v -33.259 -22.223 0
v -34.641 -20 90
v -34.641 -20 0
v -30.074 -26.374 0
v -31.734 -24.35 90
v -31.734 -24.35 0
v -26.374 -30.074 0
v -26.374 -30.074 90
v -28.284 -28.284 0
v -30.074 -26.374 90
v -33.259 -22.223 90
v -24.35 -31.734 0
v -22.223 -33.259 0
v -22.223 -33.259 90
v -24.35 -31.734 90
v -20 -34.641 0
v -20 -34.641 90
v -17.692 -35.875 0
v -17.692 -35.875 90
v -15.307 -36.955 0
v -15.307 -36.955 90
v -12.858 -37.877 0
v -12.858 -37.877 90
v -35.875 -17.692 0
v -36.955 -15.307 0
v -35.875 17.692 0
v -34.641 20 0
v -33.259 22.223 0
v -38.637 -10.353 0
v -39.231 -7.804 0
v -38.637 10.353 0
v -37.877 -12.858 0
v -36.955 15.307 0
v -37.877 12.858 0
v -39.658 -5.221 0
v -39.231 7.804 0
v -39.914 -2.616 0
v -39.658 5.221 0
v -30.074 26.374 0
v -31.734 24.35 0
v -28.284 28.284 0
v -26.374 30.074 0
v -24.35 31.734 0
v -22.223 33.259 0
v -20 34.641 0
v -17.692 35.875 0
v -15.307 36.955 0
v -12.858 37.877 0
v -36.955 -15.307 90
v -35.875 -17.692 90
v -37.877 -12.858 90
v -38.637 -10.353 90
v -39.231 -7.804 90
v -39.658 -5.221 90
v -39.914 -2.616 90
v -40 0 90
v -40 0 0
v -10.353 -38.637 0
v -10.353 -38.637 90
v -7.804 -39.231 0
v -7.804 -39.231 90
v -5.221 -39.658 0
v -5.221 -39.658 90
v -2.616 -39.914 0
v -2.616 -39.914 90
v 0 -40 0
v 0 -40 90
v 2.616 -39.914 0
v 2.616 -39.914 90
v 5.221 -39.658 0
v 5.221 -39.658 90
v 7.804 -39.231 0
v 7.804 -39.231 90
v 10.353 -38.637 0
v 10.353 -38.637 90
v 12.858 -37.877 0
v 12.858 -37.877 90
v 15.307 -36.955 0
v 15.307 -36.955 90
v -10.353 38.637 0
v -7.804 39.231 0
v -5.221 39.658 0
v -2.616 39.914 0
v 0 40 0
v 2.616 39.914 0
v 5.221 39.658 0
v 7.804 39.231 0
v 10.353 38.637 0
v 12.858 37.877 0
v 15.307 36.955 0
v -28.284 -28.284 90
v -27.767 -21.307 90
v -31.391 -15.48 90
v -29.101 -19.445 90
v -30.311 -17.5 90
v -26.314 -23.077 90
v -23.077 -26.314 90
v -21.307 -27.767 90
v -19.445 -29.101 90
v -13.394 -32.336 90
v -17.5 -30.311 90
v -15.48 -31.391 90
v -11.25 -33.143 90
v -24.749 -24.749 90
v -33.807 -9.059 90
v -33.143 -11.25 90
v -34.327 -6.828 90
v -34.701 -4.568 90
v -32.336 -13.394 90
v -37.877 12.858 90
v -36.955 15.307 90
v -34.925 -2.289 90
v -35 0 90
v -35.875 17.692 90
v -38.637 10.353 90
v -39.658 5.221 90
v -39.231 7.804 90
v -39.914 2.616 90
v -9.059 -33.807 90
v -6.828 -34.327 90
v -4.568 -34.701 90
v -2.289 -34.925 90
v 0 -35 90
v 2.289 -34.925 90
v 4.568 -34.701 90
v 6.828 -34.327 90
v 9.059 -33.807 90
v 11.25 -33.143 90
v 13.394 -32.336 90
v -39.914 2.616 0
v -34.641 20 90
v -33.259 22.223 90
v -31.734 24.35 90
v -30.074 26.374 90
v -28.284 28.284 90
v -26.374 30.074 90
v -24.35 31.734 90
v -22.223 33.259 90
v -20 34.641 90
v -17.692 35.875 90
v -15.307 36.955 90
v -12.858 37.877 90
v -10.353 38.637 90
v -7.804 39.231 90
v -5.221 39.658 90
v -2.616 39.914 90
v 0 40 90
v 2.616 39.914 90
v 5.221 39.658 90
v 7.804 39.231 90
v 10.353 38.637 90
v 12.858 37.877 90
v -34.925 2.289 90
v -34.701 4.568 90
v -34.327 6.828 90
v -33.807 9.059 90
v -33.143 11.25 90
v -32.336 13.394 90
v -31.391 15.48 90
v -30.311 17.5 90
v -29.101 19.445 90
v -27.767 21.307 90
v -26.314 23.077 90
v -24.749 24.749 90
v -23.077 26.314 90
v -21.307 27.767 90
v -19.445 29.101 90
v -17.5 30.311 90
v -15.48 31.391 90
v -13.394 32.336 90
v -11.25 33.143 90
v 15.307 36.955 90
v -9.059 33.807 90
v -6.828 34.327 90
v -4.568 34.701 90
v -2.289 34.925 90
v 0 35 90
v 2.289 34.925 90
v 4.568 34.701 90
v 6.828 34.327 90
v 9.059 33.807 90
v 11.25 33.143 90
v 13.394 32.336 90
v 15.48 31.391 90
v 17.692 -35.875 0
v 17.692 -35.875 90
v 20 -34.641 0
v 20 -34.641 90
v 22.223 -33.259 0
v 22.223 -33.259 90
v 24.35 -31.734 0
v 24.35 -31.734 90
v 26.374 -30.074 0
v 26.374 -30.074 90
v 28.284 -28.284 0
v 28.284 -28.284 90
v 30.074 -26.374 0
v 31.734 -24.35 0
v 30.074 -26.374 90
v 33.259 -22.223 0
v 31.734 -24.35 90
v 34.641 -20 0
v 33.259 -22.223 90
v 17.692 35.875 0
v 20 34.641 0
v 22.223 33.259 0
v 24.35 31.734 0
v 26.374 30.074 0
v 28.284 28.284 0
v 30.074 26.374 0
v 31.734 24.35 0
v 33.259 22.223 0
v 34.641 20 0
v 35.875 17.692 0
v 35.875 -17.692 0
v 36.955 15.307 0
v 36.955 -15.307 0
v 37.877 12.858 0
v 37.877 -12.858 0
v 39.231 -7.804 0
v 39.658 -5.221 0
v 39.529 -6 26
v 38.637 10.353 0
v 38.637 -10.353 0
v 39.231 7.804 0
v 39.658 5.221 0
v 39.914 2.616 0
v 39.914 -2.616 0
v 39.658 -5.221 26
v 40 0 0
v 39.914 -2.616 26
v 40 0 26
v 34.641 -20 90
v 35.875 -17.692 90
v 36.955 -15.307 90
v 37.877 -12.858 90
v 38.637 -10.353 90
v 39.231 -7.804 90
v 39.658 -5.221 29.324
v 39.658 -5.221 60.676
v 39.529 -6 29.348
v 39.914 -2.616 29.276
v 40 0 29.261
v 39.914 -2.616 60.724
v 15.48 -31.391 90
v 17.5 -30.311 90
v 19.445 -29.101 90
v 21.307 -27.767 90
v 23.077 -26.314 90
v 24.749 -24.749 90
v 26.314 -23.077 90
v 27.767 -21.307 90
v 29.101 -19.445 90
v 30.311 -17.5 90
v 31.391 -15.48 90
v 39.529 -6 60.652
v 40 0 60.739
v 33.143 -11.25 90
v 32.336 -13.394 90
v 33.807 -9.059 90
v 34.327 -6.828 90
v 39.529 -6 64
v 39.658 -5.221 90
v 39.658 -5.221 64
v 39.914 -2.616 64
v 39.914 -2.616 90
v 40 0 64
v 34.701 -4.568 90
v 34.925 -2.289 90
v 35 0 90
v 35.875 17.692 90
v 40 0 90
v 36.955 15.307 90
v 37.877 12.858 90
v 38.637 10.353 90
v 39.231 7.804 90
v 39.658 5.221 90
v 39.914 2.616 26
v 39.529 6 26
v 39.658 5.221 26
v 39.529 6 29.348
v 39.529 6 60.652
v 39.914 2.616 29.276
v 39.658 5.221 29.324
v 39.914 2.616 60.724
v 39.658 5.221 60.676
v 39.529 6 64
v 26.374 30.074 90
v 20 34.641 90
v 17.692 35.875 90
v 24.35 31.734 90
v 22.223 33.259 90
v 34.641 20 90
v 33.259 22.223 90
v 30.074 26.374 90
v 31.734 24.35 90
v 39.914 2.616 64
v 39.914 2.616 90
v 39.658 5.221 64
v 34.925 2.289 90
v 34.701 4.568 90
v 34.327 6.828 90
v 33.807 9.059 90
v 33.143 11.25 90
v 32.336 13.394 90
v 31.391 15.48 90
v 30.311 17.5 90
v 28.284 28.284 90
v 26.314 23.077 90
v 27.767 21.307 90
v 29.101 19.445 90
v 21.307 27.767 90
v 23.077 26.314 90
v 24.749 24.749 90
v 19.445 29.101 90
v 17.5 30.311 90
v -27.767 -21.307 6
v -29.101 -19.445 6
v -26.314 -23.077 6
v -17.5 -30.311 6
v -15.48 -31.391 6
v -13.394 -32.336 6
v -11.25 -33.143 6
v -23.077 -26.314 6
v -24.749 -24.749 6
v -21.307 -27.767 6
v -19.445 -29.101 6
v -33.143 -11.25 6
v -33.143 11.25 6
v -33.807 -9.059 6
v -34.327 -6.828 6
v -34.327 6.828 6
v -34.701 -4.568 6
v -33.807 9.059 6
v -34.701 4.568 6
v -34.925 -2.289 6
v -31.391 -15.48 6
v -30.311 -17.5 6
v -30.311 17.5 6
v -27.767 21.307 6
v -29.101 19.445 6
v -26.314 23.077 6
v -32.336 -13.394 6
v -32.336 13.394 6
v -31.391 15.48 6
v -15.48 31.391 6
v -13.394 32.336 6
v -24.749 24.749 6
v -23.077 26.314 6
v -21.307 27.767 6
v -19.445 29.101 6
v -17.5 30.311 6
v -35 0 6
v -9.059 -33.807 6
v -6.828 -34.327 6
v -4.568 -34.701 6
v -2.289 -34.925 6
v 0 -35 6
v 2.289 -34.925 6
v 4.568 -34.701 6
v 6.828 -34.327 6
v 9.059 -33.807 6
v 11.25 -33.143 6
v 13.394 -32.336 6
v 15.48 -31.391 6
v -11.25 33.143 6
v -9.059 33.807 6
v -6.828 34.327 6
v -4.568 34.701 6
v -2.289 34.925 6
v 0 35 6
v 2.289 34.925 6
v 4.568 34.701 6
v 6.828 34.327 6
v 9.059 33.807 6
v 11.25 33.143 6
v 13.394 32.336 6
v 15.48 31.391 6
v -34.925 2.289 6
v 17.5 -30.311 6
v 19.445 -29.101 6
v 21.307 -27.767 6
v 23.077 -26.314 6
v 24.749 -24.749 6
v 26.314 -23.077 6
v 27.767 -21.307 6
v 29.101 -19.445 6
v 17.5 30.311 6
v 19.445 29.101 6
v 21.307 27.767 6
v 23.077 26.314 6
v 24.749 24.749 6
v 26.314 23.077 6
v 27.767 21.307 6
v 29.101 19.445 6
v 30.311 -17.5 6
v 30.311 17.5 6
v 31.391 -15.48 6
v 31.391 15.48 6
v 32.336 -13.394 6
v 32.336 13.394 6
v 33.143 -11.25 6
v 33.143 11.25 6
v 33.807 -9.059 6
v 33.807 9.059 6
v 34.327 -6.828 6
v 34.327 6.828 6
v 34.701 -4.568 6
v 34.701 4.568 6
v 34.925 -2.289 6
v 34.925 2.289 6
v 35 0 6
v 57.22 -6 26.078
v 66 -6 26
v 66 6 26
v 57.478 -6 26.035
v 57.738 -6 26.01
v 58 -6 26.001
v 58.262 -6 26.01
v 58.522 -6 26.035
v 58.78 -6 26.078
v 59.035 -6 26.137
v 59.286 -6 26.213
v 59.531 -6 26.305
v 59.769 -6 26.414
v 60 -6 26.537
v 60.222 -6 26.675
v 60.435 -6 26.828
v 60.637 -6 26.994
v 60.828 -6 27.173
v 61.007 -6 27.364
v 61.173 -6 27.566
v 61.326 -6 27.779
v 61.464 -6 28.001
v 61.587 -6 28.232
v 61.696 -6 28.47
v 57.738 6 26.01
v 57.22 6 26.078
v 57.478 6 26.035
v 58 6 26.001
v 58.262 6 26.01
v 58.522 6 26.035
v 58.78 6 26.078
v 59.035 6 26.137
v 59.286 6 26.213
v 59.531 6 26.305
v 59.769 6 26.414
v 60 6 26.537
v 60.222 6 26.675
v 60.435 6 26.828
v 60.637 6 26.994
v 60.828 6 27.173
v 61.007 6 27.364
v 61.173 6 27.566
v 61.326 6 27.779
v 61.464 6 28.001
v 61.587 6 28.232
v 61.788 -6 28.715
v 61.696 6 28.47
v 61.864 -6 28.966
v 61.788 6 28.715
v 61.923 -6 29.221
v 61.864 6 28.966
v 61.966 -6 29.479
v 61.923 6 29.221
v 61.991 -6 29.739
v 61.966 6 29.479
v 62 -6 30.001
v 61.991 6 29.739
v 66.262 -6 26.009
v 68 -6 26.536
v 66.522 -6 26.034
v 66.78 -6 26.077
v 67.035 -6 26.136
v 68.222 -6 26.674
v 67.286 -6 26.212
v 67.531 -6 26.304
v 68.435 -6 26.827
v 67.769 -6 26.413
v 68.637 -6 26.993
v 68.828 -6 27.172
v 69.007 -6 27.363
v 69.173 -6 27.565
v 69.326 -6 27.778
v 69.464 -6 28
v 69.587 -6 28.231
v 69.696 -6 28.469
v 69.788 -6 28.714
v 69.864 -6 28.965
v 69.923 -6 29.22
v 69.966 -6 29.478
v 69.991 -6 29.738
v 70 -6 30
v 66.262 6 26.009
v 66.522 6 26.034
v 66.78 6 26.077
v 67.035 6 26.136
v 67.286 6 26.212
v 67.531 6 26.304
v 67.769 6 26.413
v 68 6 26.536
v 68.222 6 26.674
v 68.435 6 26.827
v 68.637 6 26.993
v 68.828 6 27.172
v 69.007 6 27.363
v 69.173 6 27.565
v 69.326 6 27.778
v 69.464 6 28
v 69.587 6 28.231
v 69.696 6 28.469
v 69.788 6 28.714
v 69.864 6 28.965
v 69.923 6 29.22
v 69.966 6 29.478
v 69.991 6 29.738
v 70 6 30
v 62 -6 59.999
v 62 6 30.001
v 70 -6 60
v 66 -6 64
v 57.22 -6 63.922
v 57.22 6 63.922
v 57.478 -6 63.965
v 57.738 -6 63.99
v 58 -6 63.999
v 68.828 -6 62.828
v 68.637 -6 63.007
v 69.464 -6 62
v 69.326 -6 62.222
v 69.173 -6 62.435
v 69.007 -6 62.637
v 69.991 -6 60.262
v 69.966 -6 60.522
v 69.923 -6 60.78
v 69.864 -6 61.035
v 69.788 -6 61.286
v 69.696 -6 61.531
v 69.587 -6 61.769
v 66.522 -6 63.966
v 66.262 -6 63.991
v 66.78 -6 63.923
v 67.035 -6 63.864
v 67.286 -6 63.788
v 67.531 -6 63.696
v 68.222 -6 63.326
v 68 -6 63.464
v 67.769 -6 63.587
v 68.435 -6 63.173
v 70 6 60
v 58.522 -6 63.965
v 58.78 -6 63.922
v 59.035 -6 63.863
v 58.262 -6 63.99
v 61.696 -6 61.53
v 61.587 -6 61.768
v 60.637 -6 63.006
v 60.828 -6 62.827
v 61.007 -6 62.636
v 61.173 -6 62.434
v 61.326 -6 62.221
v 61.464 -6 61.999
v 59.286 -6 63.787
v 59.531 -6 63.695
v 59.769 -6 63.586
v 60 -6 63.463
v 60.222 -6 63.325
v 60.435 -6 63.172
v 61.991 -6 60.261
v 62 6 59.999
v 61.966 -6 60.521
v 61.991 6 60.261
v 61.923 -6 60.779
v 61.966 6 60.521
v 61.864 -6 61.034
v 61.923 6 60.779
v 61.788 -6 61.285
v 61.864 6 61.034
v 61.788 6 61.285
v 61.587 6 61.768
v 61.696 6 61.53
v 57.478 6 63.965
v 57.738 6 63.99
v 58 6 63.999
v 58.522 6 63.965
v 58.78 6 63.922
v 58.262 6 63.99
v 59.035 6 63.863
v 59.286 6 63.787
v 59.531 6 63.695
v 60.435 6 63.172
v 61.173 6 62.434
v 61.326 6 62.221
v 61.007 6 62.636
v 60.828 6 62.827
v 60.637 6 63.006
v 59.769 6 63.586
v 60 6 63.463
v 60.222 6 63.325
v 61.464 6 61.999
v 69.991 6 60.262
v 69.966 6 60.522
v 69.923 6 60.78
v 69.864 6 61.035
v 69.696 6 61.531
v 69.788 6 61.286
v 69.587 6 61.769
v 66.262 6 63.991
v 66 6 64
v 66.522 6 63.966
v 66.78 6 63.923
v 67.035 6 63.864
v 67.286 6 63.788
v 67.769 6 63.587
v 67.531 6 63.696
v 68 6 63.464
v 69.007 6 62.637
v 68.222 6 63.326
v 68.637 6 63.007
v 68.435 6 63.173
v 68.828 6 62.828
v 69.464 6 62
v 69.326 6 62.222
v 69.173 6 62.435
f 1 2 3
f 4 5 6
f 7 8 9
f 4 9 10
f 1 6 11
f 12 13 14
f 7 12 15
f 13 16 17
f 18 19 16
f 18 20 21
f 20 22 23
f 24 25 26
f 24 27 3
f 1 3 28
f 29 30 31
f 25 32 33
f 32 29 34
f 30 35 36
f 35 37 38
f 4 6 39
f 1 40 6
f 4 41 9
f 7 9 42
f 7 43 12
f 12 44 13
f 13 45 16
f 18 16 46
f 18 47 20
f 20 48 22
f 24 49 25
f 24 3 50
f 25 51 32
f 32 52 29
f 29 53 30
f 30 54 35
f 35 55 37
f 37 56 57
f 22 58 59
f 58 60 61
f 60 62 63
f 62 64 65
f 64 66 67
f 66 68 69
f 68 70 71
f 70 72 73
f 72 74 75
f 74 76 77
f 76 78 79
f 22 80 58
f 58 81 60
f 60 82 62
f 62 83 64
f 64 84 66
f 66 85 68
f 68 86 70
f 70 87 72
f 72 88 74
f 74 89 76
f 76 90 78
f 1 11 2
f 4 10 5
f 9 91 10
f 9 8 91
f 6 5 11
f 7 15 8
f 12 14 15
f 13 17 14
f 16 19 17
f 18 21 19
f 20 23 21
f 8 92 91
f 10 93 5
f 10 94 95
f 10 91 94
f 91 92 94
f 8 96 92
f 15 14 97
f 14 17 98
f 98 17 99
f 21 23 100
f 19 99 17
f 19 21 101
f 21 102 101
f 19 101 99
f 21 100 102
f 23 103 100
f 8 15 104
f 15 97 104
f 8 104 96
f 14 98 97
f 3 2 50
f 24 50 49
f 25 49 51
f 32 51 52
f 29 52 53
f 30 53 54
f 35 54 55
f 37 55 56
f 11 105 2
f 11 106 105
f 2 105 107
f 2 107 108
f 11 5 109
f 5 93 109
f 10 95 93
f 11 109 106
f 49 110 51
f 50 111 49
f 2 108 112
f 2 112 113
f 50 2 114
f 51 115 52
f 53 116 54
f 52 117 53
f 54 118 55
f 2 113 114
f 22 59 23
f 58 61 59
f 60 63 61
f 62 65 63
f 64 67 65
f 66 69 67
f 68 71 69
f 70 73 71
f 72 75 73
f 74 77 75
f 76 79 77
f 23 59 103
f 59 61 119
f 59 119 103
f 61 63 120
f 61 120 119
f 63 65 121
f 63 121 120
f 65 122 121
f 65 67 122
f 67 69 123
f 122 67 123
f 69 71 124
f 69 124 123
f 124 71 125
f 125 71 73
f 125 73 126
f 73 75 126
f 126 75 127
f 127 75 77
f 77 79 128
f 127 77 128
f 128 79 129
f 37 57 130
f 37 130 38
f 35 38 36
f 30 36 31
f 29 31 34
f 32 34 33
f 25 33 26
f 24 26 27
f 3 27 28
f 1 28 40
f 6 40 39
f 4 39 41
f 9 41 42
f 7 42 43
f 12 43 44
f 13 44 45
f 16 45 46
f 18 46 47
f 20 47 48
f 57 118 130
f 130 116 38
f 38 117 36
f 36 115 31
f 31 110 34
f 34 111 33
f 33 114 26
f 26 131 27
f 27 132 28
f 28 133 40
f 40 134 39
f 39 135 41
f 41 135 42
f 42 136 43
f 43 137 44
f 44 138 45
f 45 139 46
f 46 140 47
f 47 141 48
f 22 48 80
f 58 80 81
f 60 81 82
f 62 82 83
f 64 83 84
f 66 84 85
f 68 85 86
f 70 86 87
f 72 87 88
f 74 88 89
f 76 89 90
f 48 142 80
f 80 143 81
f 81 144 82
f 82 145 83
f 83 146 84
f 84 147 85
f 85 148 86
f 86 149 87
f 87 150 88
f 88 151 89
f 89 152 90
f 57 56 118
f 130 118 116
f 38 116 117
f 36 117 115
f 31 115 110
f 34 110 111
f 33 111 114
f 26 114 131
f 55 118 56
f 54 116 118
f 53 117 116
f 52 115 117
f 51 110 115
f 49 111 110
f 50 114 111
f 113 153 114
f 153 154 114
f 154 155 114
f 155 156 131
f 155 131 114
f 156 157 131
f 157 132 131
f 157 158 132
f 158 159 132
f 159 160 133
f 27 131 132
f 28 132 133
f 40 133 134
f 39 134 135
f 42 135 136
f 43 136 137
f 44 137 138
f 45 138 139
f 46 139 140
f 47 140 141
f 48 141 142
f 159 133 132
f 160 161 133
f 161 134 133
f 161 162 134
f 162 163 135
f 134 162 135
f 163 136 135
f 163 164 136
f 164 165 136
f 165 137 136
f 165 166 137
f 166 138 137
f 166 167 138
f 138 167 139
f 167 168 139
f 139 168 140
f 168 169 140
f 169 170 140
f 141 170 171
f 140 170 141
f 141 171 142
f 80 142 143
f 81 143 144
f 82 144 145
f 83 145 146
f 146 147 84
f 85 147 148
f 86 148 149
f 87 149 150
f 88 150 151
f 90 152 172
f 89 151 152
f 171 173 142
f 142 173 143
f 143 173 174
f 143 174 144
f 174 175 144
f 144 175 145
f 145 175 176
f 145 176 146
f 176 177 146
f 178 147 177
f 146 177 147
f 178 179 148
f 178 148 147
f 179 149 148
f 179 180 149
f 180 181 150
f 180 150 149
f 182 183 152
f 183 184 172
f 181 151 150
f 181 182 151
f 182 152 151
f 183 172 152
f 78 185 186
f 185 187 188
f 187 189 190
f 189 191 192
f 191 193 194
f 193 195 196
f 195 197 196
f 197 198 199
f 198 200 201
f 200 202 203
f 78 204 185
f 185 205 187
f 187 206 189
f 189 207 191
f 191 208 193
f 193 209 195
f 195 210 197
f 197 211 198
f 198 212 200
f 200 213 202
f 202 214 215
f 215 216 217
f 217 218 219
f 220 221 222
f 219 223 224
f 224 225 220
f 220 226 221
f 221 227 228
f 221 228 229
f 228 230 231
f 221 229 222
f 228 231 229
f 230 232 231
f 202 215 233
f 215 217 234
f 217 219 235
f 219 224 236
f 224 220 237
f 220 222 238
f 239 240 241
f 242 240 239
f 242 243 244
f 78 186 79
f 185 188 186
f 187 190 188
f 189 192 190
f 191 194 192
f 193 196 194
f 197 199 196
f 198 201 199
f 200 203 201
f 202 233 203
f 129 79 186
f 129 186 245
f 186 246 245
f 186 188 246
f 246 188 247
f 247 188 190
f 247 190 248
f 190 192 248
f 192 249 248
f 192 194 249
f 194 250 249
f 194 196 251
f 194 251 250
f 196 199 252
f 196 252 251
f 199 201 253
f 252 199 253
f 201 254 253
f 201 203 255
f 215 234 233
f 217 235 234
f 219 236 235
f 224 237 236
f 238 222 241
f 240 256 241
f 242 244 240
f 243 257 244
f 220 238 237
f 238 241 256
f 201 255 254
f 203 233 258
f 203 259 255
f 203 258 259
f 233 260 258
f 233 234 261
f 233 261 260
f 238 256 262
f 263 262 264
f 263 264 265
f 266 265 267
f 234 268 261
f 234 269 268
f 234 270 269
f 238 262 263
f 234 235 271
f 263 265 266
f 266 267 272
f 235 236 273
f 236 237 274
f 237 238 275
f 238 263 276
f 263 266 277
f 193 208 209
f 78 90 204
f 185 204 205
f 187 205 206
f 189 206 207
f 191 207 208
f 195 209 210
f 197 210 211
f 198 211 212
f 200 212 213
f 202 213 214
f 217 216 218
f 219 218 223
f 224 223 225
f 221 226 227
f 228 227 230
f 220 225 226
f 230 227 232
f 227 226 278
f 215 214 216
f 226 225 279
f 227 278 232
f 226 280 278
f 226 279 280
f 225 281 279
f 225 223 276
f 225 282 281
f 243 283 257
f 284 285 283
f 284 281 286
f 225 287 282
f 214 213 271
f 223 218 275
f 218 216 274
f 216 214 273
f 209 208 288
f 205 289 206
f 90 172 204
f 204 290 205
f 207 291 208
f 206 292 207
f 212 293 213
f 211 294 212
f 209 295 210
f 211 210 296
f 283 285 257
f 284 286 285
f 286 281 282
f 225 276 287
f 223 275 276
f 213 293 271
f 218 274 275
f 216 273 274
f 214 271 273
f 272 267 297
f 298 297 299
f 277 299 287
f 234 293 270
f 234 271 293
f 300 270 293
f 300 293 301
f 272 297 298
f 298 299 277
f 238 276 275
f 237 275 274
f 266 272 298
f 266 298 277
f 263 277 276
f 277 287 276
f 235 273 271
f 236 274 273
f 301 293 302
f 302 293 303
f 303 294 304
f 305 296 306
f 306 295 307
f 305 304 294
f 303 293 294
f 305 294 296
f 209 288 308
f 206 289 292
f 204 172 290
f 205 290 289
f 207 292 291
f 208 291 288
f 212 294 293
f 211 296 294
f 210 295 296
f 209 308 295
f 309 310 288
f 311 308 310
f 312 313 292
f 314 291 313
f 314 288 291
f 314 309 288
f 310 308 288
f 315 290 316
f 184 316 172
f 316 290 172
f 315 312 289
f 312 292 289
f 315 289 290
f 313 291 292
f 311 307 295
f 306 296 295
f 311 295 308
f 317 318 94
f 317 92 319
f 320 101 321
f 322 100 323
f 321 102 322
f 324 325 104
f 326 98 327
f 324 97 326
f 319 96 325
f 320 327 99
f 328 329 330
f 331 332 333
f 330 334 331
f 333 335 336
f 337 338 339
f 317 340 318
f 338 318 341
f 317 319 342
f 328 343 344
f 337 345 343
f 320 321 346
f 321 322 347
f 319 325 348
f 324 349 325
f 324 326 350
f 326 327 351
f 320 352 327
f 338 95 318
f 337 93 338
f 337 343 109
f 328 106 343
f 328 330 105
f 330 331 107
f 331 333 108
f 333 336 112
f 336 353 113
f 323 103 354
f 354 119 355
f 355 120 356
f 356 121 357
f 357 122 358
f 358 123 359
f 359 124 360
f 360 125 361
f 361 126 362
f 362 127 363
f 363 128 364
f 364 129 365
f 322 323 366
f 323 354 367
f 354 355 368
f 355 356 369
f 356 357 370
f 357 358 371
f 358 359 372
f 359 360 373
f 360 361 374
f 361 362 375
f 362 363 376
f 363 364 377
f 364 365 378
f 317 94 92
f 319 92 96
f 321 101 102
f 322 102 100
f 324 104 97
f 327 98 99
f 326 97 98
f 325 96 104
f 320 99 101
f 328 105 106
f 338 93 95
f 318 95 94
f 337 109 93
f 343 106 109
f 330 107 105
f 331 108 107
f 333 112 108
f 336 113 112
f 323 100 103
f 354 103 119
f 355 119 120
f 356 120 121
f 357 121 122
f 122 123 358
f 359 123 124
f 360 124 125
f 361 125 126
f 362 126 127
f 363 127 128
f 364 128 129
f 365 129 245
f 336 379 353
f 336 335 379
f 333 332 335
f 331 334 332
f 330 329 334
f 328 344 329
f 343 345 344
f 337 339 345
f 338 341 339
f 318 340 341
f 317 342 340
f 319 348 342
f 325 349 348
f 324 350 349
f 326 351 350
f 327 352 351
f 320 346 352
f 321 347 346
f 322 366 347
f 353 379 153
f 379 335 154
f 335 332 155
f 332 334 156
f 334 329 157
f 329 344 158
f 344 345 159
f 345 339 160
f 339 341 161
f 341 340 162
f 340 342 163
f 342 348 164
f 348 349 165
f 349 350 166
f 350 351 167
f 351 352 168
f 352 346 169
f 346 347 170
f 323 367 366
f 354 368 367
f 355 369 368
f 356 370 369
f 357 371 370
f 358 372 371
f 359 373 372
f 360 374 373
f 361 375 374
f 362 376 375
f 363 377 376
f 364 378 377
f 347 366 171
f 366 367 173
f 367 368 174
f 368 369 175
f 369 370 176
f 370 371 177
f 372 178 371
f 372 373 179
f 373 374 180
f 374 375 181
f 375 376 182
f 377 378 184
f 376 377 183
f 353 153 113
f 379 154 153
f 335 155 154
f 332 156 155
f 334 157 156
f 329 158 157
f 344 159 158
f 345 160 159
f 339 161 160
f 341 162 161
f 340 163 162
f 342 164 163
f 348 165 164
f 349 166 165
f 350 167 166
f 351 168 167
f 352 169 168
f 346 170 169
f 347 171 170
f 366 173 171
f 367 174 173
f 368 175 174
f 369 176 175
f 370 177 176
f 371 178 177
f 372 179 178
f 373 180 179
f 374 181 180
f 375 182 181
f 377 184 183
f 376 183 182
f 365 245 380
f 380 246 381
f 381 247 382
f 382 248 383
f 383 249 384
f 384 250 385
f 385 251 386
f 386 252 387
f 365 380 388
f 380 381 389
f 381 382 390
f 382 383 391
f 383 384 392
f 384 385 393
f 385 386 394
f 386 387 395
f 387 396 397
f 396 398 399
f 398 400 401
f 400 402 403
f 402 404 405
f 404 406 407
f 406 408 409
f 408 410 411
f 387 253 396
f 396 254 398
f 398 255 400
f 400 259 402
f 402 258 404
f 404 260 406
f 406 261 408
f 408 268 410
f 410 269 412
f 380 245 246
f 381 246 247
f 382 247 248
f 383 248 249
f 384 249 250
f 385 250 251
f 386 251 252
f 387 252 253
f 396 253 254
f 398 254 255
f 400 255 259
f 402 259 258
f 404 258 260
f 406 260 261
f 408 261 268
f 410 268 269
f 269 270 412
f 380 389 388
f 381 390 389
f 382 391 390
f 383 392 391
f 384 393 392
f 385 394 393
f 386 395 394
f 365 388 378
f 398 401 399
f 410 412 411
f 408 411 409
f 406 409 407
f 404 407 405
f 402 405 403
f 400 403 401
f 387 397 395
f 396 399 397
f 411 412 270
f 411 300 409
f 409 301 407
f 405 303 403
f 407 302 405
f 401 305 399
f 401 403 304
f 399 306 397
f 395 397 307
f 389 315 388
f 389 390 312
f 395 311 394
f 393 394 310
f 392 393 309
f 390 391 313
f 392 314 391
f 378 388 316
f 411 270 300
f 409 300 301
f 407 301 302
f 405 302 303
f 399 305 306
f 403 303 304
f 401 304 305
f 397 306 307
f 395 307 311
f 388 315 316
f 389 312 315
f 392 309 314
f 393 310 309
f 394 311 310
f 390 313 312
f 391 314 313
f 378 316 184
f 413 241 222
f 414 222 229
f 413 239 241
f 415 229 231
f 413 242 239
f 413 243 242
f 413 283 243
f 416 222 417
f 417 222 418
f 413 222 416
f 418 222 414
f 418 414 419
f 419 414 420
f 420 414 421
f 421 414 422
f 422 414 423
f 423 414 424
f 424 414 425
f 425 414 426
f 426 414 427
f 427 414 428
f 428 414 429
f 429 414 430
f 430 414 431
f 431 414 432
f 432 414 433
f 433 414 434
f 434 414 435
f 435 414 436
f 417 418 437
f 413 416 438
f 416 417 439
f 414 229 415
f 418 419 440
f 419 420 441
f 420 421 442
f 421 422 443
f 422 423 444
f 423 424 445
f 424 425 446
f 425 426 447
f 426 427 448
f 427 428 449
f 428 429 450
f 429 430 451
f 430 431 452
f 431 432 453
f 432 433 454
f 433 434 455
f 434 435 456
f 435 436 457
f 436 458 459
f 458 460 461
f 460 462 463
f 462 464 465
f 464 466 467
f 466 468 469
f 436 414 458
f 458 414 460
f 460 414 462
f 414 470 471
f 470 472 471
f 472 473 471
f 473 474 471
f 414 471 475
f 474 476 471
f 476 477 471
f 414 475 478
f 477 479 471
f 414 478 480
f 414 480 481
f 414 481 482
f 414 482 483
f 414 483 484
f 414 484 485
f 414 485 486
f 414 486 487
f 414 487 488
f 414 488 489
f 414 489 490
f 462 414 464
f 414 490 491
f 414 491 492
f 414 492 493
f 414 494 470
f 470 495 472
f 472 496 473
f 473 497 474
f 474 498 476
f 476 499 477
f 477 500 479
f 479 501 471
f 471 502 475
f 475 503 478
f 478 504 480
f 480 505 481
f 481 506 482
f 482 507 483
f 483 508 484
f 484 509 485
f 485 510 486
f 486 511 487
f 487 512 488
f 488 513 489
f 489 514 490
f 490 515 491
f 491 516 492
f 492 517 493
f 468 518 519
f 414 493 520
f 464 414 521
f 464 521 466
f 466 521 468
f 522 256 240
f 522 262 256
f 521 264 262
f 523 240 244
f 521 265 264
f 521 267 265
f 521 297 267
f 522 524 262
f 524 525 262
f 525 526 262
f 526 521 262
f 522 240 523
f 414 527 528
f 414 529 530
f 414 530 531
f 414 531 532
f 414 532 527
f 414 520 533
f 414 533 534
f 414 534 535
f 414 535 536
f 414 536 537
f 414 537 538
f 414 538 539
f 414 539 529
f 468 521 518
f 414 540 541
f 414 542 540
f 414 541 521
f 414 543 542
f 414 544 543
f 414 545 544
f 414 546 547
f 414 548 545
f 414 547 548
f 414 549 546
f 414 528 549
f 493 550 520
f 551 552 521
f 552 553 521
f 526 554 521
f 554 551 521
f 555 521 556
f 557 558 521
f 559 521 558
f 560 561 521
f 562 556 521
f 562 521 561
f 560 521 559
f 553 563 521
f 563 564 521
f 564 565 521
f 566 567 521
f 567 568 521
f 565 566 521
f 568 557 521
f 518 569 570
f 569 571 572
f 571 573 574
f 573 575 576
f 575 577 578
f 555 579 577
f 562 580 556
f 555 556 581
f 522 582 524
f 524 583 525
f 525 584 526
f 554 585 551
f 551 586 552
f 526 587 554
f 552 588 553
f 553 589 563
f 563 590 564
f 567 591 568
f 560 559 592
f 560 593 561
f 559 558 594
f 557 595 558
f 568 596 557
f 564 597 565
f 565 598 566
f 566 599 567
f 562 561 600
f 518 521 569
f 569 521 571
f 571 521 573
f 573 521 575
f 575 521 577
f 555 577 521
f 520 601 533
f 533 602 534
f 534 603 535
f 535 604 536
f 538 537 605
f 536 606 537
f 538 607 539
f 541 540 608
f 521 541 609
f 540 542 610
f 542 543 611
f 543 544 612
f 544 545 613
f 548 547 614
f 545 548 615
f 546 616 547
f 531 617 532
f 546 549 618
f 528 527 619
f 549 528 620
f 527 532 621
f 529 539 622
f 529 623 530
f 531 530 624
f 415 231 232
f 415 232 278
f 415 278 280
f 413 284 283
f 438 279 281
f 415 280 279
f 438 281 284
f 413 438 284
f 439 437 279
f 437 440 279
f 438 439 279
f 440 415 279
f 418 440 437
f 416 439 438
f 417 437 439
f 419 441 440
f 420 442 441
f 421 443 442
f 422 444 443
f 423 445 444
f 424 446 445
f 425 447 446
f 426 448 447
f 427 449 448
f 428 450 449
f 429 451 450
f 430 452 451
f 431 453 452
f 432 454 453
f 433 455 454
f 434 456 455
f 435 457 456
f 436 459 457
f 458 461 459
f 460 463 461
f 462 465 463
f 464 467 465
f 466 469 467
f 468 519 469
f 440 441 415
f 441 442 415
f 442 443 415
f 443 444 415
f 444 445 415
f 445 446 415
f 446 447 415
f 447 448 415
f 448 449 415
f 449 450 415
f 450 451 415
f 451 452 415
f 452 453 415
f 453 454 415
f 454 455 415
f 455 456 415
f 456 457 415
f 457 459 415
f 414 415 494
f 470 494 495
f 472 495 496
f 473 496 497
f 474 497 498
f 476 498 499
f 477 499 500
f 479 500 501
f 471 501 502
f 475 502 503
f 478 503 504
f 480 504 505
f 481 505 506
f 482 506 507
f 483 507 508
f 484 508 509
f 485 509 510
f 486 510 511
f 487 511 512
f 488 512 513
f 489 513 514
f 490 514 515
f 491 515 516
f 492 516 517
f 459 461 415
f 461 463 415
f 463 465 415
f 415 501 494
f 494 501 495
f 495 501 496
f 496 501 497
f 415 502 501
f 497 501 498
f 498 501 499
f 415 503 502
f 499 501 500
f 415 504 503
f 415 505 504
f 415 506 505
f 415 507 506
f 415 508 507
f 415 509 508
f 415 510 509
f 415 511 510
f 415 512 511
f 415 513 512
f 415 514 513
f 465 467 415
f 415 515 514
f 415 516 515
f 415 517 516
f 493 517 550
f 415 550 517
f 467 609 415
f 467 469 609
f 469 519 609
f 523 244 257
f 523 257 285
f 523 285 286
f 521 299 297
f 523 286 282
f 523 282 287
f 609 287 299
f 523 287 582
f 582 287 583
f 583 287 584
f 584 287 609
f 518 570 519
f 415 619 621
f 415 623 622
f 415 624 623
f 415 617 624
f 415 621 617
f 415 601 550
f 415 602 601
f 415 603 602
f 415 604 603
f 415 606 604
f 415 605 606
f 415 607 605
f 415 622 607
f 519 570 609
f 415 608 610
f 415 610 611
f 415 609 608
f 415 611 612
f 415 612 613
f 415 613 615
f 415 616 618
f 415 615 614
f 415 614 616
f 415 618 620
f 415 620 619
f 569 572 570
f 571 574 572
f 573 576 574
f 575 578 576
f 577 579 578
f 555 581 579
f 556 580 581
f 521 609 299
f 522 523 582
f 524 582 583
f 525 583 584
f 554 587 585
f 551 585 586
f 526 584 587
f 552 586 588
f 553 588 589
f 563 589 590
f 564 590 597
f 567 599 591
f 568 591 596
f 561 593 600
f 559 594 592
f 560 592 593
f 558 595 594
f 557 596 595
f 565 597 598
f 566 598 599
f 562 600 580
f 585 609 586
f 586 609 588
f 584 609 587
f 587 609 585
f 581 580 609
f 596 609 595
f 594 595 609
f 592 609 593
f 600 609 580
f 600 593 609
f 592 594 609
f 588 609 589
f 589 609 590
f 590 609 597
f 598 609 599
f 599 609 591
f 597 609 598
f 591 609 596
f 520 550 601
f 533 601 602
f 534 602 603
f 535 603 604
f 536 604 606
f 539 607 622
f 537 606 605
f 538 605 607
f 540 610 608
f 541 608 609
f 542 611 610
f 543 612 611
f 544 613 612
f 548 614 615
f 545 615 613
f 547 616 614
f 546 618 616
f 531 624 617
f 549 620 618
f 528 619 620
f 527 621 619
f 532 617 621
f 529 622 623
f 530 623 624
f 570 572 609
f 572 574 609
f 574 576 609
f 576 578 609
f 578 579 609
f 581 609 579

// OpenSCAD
// =========================================
// Mug with D-shaped handle on +X side
// =========================================

$fn = 96;

// ---- Body parameters ----
outer_d   = 80;              // 外径
inner_d   = 70;              // 内径 (肉厚 5mm)
height    = 90;              // 全高
bottom_th = 6;               // 底厚

outer_r = outer_d / 2;       // 40
inner_r = inner_d / 2;       // 35

// ---- Handle parameters ----
h_open_h  = 30;              // 取手内側の空間 高さ
h_open_w  = 25;              // 取手内側の空間 幅(半径方向)
h_thick   = 8;               // 取手の太さ(断面の径方向厚み)
h_width   = 12;              // 取手の幅(Y方向)
h_center_z = height / 2;     // 高さ方向の中央付近

// 取手の内側開口の始まり(本体外周より少し内側に食い込ませて確実に union)
h_embed    = 3;                          // 本体へのめり込み量
h_in_x     = outer_r - h_embed;          // D 形状の直線部 X 位置
h_out_x    = h_in_x + h_open_w + h_thick;// D 形状の外周 X 位置

// -----------------------------------------
// 本体
// -----------------------------------------
module body() {
    difference() {
        cylinder(h = height, r = outer_r);
        translate([0, 0, bottom_th])
            cylinder(h = height - bottom_th + 1, r = inner_r);
    }
}

// -----------------------------------------
// 取手 (D 字形状: 外側半円 + 本体側直線)
//   2D プロファイルを作って linear_extrude し、
//   Y 方向に厚みを持たせるため回転させて配置
// -----------------------------------------
module handle_profile() {
    // XZ 平面上の D 字リング(中心は z = 0)
    difference() {
        // 外形: 直線部 + 外側半円(角丸 D 形状)
        hull() {
            // 本体側の直線部(縦の柱)
            translate([h_in_x, -(h_open_h / 2 + h_thick / 2)])
                square([1, h_open_h + h_thick]);
            // 外側の半円をつくるための上下の円
            translate([h_out_x - h_thick / 2,  h_open_h / 2]) circle(d = h_thick);
            translate([h_out_x - h_thick / 2, -h_open_h / 2]) circle(d = h_thick);
        }
        // 内側の空間 (高さ 30mm × 幅 25mm)
        hull() {
            translate([h_in_x - 1, -h_open_h / 2])
                square([1, h_open_h]);
            translate([h_in_x + h_open_w - h_thick / 2,  h_open_h / 2 - 0.001])
                circle(d = h_thick);
            translate([h_in_x + h_open_w - h_thick / 2, -h_open_h / 2 + 0.001])
                circle(d = h_thick);
        }
    }
}

module handle() {
    translate([0, 0, h_center_z])
        rotate([90, 0, 0])
            linear_extrude(height = h_width, center = true)
                handle_profile();
}

// -----------------------------------------
// 組み立て(取手は +X 方向のみ)
// -----------------------------------------
module mug() {
    union() {
        body();
        // 本体内部にはみ出さないよう、内側の空洞は削らない
        difference() {
            handle();
            // マグ内壁より内側に入り込んだ部分をカット
            translate([0, 0, bottom_th])
                cylinder(h = height - bottom_th + 1, r = inner_r);
        }
    }
}

mug();
